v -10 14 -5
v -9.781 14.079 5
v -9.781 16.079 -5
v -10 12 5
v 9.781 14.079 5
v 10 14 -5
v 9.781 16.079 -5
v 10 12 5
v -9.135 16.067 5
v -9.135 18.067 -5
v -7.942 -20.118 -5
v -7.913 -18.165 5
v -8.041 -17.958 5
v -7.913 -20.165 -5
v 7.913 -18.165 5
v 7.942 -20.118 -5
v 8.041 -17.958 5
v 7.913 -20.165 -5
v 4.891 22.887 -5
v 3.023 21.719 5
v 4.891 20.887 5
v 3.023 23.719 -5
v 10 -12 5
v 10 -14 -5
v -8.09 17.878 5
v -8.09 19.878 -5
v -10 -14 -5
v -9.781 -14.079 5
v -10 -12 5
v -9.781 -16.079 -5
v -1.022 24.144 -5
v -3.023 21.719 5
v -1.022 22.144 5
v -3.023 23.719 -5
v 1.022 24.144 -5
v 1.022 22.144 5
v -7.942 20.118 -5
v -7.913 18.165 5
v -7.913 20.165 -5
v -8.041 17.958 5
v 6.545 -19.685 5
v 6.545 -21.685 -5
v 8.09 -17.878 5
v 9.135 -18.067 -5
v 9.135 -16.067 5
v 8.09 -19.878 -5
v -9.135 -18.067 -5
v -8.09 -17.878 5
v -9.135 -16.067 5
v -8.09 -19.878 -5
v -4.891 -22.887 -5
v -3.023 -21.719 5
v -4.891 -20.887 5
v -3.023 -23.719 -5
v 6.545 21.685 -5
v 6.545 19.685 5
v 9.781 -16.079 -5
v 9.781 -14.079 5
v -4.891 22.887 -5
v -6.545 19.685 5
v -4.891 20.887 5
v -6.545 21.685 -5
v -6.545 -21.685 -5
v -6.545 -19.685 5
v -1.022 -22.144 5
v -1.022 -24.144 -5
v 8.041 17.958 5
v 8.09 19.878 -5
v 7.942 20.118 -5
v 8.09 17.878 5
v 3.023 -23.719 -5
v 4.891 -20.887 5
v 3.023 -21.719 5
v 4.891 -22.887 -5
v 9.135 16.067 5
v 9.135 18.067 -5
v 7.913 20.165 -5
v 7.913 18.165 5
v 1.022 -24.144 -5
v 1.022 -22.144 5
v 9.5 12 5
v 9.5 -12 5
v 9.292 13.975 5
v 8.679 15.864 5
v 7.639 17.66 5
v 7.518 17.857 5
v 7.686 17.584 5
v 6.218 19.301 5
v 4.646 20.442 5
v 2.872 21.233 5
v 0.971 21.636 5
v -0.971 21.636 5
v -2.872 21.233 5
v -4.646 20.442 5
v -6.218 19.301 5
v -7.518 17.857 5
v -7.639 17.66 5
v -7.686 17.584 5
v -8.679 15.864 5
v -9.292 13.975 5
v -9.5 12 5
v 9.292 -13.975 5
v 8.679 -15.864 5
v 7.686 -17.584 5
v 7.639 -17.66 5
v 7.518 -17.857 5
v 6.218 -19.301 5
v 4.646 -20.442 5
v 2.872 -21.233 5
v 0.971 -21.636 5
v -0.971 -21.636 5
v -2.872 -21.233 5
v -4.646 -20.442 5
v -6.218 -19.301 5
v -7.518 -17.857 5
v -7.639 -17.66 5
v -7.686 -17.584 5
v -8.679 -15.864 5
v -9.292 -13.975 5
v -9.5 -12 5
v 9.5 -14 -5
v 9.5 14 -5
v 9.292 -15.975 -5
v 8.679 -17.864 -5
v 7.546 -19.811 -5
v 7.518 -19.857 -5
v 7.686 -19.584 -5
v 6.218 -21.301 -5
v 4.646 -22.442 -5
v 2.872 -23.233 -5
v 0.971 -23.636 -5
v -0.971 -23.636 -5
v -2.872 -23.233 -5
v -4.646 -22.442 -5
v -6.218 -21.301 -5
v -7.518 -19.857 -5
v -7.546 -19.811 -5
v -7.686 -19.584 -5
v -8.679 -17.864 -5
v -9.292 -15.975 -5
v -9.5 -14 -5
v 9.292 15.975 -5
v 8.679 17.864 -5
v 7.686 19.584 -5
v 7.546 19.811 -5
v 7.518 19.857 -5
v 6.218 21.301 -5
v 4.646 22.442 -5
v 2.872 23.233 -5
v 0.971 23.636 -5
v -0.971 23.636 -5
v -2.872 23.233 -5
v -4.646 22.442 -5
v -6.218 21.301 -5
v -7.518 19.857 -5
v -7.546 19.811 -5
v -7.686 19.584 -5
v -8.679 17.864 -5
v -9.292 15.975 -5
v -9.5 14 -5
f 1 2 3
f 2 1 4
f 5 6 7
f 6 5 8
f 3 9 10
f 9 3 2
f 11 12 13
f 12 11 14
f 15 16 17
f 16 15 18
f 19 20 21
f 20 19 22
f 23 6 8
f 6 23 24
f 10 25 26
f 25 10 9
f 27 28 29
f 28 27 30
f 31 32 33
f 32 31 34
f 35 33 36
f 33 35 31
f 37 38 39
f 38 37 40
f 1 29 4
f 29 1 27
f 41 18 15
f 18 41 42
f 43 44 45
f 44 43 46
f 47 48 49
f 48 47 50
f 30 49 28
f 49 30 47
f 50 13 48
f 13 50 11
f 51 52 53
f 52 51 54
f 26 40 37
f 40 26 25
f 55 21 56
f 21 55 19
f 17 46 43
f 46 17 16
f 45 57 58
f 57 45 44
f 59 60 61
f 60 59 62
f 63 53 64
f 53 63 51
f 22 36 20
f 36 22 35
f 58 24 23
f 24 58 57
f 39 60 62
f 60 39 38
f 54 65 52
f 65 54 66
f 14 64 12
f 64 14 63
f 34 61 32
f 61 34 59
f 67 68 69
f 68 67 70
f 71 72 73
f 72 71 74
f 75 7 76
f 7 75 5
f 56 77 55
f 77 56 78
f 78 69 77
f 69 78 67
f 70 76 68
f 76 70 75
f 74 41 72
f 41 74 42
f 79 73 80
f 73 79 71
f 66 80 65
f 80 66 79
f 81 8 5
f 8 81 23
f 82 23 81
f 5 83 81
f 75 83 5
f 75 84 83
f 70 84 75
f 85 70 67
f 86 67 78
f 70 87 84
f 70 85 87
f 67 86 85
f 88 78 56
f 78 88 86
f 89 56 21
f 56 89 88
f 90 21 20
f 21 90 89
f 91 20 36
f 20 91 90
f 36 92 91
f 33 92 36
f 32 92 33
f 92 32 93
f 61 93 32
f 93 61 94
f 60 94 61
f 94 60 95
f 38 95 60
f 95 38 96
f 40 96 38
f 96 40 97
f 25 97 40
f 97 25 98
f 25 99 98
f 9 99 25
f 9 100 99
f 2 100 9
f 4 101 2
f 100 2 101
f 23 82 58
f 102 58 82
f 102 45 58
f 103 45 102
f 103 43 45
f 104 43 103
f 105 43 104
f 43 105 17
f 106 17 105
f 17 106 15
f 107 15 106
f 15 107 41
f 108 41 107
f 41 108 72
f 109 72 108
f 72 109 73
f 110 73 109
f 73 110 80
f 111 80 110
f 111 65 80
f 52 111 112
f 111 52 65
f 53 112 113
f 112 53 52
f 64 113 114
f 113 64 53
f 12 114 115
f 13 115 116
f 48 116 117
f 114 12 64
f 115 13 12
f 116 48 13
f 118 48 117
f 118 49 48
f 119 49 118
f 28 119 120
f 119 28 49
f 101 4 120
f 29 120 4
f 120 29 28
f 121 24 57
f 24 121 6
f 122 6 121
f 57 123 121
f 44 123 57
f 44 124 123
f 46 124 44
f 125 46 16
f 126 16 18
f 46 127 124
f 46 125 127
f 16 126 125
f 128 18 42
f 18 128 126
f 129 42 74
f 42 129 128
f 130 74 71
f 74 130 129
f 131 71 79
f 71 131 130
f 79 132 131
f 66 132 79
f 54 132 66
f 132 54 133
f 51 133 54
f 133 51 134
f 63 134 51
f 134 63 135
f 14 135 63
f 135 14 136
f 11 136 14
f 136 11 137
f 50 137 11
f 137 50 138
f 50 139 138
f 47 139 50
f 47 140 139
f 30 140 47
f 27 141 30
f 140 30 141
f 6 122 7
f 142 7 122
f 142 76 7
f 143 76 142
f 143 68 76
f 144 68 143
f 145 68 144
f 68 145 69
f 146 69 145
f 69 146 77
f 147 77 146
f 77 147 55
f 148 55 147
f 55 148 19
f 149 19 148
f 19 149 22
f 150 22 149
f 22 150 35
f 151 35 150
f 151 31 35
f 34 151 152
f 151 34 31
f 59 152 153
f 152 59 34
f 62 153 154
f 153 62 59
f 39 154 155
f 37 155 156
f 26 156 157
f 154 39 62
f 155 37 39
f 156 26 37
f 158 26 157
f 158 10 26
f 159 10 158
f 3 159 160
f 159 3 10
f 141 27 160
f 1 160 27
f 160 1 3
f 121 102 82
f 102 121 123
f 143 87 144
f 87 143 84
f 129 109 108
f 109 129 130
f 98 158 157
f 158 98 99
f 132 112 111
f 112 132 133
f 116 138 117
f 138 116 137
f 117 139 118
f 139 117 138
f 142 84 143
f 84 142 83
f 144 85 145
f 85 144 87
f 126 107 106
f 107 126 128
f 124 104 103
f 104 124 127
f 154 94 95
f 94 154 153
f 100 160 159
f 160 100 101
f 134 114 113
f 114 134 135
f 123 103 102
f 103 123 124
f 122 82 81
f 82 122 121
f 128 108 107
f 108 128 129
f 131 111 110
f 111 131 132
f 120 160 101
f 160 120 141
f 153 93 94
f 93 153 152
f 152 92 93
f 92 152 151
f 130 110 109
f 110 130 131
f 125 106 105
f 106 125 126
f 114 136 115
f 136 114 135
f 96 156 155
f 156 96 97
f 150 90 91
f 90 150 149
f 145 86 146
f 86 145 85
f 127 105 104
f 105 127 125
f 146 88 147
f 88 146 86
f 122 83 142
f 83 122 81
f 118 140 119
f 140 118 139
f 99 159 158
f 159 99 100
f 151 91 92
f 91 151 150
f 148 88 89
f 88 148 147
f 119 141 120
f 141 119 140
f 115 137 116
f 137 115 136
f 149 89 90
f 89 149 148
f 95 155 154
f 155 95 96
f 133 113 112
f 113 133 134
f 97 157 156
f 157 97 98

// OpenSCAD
module shell() {
  hull() {
    translate([0,11,10]) sphere(10);
    translate([0,15,-10]) sphere(10);
    translate([0,-15,-10]) sphere(10);
    translate([0,-11,10]) sphere(10);
  }
}

module shell_hole() {
  hull() {
    translate([0,11,10]) sphere(9.5);
    translate([0,15,-10]) sphere(9.5);
    translate([0,-15,-10]) sphere(9.5);
    translate([0,-11,10]) sphere(9.5);
  }
}


difference() {
  difference() {
    shell();
    translate([0,0,55]) cube(100, center=true);
    translate([0,0,-55]) cube(100, center=true);
  }

  difference() {
    shell_hole();
  }
}
